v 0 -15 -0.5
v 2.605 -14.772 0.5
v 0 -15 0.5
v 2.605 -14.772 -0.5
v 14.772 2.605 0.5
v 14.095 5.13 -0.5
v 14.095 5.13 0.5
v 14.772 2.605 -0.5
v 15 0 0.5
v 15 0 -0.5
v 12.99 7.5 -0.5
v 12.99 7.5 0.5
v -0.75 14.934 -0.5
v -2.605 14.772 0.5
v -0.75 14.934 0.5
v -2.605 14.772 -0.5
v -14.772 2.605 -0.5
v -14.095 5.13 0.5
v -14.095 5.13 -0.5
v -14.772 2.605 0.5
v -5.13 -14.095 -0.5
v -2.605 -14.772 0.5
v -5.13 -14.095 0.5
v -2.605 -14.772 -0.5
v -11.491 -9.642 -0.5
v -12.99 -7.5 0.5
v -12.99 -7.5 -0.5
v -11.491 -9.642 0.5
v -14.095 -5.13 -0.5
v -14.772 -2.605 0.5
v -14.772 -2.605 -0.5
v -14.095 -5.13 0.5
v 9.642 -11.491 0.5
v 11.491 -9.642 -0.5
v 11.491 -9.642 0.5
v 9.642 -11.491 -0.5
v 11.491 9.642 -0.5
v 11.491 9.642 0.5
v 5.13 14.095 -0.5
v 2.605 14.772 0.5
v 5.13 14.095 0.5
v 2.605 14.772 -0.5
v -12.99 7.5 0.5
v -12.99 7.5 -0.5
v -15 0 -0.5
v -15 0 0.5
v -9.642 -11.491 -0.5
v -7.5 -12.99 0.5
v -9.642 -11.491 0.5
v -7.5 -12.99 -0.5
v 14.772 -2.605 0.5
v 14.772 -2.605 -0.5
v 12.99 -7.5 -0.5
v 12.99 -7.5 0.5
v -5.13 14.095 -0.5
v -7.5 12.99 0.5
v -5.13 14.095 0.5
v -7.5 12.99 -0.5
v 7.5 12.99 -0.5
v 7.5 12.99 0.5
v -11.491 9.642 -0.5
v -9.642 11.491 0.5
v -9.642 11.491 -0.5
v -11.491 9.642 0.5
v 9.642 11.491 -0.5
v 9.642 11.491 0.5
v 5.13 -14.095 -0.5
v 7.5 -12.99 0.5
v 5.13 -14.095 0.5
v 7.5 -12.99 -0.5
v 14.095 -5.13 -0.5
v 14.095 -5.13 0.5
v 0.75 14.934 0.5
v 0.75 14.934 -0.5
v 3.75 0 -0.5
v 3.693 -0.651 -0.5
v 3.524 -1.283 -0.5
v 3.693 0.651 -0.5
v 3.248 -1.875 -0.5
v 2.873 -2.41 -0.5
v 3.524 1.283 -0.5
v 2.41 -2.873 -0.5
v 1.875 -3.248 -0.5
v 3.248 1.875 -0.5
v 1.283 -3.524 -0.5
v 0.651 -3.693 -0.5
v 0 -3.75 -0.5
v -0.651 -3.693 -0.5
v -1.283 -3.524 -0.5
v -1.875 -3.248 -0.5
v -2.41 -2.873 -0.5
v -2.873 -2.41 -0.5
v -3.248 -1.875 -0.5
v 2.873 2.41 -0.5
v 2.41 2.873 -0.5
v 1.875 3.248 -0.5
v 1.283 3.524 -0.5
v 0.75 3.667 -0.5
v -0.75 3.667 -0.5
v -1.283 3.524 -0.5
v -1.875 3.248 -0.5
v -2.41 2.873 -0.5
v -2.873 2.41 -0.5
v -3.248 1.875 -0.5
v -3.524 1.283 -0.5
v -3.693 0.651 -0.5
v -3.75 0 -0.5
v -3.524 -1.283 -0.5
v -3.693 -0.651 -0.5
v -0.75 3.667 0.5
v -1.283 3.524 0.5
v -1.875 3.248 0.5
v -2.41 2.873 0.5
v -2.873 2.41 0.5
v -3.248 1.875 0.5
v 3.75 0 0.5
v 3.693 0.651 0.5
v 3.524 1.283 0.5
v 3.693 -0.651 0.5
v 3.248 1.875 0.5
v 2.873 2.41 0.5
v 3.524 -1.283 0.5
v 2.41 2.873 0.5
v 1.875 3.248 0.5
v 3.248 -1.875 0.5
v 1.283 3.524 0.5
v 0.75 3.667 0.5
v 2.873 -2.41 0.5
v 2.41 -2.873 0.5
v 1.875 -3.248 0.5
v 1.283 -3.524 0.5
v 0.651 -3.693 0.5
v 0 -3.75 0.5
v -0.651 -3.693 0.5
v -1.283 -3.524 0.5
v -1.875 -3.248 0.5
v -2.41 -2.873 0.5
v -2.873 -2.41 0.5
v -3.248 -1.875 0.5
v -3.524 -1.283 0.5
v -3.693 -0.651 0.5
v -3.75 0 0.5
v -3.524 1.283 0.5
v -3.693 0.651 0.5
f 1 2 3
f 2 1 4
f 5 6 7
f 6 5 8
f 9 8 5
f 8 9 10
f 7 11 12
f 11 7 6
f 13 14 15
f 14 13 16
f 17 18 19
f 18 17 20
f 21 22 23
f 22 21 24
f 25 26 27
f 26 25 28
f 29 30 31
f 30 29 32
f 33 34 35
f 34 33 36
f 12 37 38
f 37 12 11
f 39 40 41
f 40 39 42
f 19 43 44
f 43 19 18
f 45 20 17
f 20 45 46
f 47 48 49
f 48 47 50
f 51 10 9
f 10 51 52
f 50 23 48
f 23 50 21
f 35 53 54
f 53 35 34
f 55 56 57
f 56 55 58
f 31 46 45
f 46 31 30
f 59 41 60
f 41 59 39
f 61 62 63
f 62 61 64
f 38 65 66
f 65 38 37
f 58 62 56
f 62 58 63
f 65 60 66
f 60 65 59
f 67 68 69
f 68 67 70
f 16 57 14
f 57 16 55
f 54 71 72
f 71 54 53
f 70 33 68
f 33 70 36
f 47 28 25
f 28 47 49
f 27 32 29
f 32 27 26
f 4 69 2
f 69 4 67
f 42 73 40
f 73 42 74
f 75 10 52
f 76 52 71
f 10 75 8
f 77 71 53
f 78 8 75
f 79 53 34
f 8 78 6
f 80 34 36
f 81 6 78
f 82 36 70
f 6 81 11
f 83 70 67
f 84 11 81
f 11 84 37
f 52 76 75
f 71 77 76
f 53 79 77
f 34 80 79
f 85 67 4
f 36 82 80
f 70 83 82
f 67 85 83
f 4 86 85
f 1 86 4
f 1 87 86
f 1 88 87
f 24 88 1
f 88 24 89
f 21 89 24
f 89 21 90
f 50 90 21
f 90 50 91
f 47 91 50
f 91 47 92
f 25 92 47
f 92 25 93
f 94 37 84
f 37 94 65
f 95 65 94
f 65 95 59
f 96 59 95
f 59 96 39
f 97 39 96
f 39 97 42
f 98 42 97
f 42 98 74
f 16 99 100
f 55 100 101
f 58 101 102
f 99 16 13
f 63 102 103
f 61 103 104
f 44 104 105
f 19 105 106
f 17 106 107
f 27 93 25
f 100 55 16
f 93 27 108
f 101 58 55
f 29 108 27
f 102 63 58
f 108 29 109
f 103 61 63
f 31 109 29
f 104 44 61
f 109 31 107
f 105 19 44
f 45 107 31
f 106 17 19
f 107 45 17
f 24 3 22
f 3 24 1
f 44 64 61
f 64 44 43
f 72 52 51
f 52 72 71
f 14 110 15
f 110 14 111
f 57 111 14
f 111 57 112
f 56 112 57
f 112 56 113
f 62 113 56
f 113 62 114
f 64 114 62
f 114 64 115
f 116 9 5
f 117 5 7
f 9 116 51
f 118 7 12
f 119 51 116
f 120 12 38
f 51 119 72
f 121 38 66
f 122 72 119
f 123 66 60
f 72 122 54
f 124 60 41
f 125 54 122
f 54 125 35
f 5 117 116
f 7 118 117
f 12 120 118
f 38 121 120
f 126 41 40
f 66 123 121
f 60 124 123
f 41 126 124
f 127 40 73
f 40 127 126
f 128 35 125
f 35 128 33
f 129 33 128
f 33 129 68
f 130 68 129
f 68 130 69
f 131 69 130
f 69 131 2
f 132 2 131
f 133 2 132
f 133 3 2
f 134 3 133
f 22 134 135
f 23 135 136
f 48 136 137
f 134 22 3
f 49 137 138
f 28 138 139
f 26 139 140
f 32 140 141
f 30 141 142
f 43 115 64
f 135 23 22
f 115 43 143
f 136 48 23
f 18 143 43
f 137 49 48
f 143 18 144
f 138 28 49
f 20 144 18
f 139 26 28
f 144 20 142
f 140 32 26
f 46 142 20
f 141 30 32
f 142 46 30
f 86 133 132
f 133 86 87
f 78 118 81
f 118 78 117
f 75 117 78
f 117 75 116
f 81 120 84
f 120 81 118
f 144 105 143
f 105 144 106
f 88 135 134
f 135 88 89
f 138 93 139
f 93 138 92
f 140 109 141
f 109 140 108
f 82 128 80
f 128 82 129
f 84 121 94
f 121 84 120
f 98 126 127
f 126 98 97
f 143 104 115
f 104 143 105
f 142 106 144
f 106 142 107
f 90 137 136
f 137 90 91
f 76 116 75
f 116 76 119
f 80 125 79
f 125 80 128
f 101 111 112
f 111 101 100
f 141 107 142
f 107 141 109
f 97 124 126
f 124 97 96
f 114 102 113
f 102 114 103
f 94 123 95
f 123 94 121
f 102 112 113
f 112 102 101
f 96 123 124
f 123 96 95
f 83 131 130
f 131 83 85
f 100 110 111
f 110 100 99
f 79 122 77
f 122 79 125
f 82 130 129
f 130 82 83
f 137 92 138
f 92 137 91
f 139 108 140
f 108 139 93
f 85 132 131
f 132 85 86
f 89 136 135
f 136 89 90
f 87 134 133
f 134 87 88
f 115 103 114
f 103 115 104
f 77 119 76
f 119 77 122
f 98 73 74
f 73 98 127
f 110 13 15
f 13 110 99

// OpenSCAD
/*
 * Machdyne PNP
 * Copyright (c) 2023 Lone Dynamics Corporation. All rights reserved.
 *
 * Nozzle Shade Disc
 *
 * This should be printed in a matte color, it sits above the nozzle.
 *
 */

$fn = 36;

nsd();

module nsd() {
	
	difference() {
		cylinder(d=30, h=1, center=true);
		cylinder(d=7.5, h=10, center=true);
		translate([0,50,0]) cube([1.5,100,10], center=true);
	}
	
}
